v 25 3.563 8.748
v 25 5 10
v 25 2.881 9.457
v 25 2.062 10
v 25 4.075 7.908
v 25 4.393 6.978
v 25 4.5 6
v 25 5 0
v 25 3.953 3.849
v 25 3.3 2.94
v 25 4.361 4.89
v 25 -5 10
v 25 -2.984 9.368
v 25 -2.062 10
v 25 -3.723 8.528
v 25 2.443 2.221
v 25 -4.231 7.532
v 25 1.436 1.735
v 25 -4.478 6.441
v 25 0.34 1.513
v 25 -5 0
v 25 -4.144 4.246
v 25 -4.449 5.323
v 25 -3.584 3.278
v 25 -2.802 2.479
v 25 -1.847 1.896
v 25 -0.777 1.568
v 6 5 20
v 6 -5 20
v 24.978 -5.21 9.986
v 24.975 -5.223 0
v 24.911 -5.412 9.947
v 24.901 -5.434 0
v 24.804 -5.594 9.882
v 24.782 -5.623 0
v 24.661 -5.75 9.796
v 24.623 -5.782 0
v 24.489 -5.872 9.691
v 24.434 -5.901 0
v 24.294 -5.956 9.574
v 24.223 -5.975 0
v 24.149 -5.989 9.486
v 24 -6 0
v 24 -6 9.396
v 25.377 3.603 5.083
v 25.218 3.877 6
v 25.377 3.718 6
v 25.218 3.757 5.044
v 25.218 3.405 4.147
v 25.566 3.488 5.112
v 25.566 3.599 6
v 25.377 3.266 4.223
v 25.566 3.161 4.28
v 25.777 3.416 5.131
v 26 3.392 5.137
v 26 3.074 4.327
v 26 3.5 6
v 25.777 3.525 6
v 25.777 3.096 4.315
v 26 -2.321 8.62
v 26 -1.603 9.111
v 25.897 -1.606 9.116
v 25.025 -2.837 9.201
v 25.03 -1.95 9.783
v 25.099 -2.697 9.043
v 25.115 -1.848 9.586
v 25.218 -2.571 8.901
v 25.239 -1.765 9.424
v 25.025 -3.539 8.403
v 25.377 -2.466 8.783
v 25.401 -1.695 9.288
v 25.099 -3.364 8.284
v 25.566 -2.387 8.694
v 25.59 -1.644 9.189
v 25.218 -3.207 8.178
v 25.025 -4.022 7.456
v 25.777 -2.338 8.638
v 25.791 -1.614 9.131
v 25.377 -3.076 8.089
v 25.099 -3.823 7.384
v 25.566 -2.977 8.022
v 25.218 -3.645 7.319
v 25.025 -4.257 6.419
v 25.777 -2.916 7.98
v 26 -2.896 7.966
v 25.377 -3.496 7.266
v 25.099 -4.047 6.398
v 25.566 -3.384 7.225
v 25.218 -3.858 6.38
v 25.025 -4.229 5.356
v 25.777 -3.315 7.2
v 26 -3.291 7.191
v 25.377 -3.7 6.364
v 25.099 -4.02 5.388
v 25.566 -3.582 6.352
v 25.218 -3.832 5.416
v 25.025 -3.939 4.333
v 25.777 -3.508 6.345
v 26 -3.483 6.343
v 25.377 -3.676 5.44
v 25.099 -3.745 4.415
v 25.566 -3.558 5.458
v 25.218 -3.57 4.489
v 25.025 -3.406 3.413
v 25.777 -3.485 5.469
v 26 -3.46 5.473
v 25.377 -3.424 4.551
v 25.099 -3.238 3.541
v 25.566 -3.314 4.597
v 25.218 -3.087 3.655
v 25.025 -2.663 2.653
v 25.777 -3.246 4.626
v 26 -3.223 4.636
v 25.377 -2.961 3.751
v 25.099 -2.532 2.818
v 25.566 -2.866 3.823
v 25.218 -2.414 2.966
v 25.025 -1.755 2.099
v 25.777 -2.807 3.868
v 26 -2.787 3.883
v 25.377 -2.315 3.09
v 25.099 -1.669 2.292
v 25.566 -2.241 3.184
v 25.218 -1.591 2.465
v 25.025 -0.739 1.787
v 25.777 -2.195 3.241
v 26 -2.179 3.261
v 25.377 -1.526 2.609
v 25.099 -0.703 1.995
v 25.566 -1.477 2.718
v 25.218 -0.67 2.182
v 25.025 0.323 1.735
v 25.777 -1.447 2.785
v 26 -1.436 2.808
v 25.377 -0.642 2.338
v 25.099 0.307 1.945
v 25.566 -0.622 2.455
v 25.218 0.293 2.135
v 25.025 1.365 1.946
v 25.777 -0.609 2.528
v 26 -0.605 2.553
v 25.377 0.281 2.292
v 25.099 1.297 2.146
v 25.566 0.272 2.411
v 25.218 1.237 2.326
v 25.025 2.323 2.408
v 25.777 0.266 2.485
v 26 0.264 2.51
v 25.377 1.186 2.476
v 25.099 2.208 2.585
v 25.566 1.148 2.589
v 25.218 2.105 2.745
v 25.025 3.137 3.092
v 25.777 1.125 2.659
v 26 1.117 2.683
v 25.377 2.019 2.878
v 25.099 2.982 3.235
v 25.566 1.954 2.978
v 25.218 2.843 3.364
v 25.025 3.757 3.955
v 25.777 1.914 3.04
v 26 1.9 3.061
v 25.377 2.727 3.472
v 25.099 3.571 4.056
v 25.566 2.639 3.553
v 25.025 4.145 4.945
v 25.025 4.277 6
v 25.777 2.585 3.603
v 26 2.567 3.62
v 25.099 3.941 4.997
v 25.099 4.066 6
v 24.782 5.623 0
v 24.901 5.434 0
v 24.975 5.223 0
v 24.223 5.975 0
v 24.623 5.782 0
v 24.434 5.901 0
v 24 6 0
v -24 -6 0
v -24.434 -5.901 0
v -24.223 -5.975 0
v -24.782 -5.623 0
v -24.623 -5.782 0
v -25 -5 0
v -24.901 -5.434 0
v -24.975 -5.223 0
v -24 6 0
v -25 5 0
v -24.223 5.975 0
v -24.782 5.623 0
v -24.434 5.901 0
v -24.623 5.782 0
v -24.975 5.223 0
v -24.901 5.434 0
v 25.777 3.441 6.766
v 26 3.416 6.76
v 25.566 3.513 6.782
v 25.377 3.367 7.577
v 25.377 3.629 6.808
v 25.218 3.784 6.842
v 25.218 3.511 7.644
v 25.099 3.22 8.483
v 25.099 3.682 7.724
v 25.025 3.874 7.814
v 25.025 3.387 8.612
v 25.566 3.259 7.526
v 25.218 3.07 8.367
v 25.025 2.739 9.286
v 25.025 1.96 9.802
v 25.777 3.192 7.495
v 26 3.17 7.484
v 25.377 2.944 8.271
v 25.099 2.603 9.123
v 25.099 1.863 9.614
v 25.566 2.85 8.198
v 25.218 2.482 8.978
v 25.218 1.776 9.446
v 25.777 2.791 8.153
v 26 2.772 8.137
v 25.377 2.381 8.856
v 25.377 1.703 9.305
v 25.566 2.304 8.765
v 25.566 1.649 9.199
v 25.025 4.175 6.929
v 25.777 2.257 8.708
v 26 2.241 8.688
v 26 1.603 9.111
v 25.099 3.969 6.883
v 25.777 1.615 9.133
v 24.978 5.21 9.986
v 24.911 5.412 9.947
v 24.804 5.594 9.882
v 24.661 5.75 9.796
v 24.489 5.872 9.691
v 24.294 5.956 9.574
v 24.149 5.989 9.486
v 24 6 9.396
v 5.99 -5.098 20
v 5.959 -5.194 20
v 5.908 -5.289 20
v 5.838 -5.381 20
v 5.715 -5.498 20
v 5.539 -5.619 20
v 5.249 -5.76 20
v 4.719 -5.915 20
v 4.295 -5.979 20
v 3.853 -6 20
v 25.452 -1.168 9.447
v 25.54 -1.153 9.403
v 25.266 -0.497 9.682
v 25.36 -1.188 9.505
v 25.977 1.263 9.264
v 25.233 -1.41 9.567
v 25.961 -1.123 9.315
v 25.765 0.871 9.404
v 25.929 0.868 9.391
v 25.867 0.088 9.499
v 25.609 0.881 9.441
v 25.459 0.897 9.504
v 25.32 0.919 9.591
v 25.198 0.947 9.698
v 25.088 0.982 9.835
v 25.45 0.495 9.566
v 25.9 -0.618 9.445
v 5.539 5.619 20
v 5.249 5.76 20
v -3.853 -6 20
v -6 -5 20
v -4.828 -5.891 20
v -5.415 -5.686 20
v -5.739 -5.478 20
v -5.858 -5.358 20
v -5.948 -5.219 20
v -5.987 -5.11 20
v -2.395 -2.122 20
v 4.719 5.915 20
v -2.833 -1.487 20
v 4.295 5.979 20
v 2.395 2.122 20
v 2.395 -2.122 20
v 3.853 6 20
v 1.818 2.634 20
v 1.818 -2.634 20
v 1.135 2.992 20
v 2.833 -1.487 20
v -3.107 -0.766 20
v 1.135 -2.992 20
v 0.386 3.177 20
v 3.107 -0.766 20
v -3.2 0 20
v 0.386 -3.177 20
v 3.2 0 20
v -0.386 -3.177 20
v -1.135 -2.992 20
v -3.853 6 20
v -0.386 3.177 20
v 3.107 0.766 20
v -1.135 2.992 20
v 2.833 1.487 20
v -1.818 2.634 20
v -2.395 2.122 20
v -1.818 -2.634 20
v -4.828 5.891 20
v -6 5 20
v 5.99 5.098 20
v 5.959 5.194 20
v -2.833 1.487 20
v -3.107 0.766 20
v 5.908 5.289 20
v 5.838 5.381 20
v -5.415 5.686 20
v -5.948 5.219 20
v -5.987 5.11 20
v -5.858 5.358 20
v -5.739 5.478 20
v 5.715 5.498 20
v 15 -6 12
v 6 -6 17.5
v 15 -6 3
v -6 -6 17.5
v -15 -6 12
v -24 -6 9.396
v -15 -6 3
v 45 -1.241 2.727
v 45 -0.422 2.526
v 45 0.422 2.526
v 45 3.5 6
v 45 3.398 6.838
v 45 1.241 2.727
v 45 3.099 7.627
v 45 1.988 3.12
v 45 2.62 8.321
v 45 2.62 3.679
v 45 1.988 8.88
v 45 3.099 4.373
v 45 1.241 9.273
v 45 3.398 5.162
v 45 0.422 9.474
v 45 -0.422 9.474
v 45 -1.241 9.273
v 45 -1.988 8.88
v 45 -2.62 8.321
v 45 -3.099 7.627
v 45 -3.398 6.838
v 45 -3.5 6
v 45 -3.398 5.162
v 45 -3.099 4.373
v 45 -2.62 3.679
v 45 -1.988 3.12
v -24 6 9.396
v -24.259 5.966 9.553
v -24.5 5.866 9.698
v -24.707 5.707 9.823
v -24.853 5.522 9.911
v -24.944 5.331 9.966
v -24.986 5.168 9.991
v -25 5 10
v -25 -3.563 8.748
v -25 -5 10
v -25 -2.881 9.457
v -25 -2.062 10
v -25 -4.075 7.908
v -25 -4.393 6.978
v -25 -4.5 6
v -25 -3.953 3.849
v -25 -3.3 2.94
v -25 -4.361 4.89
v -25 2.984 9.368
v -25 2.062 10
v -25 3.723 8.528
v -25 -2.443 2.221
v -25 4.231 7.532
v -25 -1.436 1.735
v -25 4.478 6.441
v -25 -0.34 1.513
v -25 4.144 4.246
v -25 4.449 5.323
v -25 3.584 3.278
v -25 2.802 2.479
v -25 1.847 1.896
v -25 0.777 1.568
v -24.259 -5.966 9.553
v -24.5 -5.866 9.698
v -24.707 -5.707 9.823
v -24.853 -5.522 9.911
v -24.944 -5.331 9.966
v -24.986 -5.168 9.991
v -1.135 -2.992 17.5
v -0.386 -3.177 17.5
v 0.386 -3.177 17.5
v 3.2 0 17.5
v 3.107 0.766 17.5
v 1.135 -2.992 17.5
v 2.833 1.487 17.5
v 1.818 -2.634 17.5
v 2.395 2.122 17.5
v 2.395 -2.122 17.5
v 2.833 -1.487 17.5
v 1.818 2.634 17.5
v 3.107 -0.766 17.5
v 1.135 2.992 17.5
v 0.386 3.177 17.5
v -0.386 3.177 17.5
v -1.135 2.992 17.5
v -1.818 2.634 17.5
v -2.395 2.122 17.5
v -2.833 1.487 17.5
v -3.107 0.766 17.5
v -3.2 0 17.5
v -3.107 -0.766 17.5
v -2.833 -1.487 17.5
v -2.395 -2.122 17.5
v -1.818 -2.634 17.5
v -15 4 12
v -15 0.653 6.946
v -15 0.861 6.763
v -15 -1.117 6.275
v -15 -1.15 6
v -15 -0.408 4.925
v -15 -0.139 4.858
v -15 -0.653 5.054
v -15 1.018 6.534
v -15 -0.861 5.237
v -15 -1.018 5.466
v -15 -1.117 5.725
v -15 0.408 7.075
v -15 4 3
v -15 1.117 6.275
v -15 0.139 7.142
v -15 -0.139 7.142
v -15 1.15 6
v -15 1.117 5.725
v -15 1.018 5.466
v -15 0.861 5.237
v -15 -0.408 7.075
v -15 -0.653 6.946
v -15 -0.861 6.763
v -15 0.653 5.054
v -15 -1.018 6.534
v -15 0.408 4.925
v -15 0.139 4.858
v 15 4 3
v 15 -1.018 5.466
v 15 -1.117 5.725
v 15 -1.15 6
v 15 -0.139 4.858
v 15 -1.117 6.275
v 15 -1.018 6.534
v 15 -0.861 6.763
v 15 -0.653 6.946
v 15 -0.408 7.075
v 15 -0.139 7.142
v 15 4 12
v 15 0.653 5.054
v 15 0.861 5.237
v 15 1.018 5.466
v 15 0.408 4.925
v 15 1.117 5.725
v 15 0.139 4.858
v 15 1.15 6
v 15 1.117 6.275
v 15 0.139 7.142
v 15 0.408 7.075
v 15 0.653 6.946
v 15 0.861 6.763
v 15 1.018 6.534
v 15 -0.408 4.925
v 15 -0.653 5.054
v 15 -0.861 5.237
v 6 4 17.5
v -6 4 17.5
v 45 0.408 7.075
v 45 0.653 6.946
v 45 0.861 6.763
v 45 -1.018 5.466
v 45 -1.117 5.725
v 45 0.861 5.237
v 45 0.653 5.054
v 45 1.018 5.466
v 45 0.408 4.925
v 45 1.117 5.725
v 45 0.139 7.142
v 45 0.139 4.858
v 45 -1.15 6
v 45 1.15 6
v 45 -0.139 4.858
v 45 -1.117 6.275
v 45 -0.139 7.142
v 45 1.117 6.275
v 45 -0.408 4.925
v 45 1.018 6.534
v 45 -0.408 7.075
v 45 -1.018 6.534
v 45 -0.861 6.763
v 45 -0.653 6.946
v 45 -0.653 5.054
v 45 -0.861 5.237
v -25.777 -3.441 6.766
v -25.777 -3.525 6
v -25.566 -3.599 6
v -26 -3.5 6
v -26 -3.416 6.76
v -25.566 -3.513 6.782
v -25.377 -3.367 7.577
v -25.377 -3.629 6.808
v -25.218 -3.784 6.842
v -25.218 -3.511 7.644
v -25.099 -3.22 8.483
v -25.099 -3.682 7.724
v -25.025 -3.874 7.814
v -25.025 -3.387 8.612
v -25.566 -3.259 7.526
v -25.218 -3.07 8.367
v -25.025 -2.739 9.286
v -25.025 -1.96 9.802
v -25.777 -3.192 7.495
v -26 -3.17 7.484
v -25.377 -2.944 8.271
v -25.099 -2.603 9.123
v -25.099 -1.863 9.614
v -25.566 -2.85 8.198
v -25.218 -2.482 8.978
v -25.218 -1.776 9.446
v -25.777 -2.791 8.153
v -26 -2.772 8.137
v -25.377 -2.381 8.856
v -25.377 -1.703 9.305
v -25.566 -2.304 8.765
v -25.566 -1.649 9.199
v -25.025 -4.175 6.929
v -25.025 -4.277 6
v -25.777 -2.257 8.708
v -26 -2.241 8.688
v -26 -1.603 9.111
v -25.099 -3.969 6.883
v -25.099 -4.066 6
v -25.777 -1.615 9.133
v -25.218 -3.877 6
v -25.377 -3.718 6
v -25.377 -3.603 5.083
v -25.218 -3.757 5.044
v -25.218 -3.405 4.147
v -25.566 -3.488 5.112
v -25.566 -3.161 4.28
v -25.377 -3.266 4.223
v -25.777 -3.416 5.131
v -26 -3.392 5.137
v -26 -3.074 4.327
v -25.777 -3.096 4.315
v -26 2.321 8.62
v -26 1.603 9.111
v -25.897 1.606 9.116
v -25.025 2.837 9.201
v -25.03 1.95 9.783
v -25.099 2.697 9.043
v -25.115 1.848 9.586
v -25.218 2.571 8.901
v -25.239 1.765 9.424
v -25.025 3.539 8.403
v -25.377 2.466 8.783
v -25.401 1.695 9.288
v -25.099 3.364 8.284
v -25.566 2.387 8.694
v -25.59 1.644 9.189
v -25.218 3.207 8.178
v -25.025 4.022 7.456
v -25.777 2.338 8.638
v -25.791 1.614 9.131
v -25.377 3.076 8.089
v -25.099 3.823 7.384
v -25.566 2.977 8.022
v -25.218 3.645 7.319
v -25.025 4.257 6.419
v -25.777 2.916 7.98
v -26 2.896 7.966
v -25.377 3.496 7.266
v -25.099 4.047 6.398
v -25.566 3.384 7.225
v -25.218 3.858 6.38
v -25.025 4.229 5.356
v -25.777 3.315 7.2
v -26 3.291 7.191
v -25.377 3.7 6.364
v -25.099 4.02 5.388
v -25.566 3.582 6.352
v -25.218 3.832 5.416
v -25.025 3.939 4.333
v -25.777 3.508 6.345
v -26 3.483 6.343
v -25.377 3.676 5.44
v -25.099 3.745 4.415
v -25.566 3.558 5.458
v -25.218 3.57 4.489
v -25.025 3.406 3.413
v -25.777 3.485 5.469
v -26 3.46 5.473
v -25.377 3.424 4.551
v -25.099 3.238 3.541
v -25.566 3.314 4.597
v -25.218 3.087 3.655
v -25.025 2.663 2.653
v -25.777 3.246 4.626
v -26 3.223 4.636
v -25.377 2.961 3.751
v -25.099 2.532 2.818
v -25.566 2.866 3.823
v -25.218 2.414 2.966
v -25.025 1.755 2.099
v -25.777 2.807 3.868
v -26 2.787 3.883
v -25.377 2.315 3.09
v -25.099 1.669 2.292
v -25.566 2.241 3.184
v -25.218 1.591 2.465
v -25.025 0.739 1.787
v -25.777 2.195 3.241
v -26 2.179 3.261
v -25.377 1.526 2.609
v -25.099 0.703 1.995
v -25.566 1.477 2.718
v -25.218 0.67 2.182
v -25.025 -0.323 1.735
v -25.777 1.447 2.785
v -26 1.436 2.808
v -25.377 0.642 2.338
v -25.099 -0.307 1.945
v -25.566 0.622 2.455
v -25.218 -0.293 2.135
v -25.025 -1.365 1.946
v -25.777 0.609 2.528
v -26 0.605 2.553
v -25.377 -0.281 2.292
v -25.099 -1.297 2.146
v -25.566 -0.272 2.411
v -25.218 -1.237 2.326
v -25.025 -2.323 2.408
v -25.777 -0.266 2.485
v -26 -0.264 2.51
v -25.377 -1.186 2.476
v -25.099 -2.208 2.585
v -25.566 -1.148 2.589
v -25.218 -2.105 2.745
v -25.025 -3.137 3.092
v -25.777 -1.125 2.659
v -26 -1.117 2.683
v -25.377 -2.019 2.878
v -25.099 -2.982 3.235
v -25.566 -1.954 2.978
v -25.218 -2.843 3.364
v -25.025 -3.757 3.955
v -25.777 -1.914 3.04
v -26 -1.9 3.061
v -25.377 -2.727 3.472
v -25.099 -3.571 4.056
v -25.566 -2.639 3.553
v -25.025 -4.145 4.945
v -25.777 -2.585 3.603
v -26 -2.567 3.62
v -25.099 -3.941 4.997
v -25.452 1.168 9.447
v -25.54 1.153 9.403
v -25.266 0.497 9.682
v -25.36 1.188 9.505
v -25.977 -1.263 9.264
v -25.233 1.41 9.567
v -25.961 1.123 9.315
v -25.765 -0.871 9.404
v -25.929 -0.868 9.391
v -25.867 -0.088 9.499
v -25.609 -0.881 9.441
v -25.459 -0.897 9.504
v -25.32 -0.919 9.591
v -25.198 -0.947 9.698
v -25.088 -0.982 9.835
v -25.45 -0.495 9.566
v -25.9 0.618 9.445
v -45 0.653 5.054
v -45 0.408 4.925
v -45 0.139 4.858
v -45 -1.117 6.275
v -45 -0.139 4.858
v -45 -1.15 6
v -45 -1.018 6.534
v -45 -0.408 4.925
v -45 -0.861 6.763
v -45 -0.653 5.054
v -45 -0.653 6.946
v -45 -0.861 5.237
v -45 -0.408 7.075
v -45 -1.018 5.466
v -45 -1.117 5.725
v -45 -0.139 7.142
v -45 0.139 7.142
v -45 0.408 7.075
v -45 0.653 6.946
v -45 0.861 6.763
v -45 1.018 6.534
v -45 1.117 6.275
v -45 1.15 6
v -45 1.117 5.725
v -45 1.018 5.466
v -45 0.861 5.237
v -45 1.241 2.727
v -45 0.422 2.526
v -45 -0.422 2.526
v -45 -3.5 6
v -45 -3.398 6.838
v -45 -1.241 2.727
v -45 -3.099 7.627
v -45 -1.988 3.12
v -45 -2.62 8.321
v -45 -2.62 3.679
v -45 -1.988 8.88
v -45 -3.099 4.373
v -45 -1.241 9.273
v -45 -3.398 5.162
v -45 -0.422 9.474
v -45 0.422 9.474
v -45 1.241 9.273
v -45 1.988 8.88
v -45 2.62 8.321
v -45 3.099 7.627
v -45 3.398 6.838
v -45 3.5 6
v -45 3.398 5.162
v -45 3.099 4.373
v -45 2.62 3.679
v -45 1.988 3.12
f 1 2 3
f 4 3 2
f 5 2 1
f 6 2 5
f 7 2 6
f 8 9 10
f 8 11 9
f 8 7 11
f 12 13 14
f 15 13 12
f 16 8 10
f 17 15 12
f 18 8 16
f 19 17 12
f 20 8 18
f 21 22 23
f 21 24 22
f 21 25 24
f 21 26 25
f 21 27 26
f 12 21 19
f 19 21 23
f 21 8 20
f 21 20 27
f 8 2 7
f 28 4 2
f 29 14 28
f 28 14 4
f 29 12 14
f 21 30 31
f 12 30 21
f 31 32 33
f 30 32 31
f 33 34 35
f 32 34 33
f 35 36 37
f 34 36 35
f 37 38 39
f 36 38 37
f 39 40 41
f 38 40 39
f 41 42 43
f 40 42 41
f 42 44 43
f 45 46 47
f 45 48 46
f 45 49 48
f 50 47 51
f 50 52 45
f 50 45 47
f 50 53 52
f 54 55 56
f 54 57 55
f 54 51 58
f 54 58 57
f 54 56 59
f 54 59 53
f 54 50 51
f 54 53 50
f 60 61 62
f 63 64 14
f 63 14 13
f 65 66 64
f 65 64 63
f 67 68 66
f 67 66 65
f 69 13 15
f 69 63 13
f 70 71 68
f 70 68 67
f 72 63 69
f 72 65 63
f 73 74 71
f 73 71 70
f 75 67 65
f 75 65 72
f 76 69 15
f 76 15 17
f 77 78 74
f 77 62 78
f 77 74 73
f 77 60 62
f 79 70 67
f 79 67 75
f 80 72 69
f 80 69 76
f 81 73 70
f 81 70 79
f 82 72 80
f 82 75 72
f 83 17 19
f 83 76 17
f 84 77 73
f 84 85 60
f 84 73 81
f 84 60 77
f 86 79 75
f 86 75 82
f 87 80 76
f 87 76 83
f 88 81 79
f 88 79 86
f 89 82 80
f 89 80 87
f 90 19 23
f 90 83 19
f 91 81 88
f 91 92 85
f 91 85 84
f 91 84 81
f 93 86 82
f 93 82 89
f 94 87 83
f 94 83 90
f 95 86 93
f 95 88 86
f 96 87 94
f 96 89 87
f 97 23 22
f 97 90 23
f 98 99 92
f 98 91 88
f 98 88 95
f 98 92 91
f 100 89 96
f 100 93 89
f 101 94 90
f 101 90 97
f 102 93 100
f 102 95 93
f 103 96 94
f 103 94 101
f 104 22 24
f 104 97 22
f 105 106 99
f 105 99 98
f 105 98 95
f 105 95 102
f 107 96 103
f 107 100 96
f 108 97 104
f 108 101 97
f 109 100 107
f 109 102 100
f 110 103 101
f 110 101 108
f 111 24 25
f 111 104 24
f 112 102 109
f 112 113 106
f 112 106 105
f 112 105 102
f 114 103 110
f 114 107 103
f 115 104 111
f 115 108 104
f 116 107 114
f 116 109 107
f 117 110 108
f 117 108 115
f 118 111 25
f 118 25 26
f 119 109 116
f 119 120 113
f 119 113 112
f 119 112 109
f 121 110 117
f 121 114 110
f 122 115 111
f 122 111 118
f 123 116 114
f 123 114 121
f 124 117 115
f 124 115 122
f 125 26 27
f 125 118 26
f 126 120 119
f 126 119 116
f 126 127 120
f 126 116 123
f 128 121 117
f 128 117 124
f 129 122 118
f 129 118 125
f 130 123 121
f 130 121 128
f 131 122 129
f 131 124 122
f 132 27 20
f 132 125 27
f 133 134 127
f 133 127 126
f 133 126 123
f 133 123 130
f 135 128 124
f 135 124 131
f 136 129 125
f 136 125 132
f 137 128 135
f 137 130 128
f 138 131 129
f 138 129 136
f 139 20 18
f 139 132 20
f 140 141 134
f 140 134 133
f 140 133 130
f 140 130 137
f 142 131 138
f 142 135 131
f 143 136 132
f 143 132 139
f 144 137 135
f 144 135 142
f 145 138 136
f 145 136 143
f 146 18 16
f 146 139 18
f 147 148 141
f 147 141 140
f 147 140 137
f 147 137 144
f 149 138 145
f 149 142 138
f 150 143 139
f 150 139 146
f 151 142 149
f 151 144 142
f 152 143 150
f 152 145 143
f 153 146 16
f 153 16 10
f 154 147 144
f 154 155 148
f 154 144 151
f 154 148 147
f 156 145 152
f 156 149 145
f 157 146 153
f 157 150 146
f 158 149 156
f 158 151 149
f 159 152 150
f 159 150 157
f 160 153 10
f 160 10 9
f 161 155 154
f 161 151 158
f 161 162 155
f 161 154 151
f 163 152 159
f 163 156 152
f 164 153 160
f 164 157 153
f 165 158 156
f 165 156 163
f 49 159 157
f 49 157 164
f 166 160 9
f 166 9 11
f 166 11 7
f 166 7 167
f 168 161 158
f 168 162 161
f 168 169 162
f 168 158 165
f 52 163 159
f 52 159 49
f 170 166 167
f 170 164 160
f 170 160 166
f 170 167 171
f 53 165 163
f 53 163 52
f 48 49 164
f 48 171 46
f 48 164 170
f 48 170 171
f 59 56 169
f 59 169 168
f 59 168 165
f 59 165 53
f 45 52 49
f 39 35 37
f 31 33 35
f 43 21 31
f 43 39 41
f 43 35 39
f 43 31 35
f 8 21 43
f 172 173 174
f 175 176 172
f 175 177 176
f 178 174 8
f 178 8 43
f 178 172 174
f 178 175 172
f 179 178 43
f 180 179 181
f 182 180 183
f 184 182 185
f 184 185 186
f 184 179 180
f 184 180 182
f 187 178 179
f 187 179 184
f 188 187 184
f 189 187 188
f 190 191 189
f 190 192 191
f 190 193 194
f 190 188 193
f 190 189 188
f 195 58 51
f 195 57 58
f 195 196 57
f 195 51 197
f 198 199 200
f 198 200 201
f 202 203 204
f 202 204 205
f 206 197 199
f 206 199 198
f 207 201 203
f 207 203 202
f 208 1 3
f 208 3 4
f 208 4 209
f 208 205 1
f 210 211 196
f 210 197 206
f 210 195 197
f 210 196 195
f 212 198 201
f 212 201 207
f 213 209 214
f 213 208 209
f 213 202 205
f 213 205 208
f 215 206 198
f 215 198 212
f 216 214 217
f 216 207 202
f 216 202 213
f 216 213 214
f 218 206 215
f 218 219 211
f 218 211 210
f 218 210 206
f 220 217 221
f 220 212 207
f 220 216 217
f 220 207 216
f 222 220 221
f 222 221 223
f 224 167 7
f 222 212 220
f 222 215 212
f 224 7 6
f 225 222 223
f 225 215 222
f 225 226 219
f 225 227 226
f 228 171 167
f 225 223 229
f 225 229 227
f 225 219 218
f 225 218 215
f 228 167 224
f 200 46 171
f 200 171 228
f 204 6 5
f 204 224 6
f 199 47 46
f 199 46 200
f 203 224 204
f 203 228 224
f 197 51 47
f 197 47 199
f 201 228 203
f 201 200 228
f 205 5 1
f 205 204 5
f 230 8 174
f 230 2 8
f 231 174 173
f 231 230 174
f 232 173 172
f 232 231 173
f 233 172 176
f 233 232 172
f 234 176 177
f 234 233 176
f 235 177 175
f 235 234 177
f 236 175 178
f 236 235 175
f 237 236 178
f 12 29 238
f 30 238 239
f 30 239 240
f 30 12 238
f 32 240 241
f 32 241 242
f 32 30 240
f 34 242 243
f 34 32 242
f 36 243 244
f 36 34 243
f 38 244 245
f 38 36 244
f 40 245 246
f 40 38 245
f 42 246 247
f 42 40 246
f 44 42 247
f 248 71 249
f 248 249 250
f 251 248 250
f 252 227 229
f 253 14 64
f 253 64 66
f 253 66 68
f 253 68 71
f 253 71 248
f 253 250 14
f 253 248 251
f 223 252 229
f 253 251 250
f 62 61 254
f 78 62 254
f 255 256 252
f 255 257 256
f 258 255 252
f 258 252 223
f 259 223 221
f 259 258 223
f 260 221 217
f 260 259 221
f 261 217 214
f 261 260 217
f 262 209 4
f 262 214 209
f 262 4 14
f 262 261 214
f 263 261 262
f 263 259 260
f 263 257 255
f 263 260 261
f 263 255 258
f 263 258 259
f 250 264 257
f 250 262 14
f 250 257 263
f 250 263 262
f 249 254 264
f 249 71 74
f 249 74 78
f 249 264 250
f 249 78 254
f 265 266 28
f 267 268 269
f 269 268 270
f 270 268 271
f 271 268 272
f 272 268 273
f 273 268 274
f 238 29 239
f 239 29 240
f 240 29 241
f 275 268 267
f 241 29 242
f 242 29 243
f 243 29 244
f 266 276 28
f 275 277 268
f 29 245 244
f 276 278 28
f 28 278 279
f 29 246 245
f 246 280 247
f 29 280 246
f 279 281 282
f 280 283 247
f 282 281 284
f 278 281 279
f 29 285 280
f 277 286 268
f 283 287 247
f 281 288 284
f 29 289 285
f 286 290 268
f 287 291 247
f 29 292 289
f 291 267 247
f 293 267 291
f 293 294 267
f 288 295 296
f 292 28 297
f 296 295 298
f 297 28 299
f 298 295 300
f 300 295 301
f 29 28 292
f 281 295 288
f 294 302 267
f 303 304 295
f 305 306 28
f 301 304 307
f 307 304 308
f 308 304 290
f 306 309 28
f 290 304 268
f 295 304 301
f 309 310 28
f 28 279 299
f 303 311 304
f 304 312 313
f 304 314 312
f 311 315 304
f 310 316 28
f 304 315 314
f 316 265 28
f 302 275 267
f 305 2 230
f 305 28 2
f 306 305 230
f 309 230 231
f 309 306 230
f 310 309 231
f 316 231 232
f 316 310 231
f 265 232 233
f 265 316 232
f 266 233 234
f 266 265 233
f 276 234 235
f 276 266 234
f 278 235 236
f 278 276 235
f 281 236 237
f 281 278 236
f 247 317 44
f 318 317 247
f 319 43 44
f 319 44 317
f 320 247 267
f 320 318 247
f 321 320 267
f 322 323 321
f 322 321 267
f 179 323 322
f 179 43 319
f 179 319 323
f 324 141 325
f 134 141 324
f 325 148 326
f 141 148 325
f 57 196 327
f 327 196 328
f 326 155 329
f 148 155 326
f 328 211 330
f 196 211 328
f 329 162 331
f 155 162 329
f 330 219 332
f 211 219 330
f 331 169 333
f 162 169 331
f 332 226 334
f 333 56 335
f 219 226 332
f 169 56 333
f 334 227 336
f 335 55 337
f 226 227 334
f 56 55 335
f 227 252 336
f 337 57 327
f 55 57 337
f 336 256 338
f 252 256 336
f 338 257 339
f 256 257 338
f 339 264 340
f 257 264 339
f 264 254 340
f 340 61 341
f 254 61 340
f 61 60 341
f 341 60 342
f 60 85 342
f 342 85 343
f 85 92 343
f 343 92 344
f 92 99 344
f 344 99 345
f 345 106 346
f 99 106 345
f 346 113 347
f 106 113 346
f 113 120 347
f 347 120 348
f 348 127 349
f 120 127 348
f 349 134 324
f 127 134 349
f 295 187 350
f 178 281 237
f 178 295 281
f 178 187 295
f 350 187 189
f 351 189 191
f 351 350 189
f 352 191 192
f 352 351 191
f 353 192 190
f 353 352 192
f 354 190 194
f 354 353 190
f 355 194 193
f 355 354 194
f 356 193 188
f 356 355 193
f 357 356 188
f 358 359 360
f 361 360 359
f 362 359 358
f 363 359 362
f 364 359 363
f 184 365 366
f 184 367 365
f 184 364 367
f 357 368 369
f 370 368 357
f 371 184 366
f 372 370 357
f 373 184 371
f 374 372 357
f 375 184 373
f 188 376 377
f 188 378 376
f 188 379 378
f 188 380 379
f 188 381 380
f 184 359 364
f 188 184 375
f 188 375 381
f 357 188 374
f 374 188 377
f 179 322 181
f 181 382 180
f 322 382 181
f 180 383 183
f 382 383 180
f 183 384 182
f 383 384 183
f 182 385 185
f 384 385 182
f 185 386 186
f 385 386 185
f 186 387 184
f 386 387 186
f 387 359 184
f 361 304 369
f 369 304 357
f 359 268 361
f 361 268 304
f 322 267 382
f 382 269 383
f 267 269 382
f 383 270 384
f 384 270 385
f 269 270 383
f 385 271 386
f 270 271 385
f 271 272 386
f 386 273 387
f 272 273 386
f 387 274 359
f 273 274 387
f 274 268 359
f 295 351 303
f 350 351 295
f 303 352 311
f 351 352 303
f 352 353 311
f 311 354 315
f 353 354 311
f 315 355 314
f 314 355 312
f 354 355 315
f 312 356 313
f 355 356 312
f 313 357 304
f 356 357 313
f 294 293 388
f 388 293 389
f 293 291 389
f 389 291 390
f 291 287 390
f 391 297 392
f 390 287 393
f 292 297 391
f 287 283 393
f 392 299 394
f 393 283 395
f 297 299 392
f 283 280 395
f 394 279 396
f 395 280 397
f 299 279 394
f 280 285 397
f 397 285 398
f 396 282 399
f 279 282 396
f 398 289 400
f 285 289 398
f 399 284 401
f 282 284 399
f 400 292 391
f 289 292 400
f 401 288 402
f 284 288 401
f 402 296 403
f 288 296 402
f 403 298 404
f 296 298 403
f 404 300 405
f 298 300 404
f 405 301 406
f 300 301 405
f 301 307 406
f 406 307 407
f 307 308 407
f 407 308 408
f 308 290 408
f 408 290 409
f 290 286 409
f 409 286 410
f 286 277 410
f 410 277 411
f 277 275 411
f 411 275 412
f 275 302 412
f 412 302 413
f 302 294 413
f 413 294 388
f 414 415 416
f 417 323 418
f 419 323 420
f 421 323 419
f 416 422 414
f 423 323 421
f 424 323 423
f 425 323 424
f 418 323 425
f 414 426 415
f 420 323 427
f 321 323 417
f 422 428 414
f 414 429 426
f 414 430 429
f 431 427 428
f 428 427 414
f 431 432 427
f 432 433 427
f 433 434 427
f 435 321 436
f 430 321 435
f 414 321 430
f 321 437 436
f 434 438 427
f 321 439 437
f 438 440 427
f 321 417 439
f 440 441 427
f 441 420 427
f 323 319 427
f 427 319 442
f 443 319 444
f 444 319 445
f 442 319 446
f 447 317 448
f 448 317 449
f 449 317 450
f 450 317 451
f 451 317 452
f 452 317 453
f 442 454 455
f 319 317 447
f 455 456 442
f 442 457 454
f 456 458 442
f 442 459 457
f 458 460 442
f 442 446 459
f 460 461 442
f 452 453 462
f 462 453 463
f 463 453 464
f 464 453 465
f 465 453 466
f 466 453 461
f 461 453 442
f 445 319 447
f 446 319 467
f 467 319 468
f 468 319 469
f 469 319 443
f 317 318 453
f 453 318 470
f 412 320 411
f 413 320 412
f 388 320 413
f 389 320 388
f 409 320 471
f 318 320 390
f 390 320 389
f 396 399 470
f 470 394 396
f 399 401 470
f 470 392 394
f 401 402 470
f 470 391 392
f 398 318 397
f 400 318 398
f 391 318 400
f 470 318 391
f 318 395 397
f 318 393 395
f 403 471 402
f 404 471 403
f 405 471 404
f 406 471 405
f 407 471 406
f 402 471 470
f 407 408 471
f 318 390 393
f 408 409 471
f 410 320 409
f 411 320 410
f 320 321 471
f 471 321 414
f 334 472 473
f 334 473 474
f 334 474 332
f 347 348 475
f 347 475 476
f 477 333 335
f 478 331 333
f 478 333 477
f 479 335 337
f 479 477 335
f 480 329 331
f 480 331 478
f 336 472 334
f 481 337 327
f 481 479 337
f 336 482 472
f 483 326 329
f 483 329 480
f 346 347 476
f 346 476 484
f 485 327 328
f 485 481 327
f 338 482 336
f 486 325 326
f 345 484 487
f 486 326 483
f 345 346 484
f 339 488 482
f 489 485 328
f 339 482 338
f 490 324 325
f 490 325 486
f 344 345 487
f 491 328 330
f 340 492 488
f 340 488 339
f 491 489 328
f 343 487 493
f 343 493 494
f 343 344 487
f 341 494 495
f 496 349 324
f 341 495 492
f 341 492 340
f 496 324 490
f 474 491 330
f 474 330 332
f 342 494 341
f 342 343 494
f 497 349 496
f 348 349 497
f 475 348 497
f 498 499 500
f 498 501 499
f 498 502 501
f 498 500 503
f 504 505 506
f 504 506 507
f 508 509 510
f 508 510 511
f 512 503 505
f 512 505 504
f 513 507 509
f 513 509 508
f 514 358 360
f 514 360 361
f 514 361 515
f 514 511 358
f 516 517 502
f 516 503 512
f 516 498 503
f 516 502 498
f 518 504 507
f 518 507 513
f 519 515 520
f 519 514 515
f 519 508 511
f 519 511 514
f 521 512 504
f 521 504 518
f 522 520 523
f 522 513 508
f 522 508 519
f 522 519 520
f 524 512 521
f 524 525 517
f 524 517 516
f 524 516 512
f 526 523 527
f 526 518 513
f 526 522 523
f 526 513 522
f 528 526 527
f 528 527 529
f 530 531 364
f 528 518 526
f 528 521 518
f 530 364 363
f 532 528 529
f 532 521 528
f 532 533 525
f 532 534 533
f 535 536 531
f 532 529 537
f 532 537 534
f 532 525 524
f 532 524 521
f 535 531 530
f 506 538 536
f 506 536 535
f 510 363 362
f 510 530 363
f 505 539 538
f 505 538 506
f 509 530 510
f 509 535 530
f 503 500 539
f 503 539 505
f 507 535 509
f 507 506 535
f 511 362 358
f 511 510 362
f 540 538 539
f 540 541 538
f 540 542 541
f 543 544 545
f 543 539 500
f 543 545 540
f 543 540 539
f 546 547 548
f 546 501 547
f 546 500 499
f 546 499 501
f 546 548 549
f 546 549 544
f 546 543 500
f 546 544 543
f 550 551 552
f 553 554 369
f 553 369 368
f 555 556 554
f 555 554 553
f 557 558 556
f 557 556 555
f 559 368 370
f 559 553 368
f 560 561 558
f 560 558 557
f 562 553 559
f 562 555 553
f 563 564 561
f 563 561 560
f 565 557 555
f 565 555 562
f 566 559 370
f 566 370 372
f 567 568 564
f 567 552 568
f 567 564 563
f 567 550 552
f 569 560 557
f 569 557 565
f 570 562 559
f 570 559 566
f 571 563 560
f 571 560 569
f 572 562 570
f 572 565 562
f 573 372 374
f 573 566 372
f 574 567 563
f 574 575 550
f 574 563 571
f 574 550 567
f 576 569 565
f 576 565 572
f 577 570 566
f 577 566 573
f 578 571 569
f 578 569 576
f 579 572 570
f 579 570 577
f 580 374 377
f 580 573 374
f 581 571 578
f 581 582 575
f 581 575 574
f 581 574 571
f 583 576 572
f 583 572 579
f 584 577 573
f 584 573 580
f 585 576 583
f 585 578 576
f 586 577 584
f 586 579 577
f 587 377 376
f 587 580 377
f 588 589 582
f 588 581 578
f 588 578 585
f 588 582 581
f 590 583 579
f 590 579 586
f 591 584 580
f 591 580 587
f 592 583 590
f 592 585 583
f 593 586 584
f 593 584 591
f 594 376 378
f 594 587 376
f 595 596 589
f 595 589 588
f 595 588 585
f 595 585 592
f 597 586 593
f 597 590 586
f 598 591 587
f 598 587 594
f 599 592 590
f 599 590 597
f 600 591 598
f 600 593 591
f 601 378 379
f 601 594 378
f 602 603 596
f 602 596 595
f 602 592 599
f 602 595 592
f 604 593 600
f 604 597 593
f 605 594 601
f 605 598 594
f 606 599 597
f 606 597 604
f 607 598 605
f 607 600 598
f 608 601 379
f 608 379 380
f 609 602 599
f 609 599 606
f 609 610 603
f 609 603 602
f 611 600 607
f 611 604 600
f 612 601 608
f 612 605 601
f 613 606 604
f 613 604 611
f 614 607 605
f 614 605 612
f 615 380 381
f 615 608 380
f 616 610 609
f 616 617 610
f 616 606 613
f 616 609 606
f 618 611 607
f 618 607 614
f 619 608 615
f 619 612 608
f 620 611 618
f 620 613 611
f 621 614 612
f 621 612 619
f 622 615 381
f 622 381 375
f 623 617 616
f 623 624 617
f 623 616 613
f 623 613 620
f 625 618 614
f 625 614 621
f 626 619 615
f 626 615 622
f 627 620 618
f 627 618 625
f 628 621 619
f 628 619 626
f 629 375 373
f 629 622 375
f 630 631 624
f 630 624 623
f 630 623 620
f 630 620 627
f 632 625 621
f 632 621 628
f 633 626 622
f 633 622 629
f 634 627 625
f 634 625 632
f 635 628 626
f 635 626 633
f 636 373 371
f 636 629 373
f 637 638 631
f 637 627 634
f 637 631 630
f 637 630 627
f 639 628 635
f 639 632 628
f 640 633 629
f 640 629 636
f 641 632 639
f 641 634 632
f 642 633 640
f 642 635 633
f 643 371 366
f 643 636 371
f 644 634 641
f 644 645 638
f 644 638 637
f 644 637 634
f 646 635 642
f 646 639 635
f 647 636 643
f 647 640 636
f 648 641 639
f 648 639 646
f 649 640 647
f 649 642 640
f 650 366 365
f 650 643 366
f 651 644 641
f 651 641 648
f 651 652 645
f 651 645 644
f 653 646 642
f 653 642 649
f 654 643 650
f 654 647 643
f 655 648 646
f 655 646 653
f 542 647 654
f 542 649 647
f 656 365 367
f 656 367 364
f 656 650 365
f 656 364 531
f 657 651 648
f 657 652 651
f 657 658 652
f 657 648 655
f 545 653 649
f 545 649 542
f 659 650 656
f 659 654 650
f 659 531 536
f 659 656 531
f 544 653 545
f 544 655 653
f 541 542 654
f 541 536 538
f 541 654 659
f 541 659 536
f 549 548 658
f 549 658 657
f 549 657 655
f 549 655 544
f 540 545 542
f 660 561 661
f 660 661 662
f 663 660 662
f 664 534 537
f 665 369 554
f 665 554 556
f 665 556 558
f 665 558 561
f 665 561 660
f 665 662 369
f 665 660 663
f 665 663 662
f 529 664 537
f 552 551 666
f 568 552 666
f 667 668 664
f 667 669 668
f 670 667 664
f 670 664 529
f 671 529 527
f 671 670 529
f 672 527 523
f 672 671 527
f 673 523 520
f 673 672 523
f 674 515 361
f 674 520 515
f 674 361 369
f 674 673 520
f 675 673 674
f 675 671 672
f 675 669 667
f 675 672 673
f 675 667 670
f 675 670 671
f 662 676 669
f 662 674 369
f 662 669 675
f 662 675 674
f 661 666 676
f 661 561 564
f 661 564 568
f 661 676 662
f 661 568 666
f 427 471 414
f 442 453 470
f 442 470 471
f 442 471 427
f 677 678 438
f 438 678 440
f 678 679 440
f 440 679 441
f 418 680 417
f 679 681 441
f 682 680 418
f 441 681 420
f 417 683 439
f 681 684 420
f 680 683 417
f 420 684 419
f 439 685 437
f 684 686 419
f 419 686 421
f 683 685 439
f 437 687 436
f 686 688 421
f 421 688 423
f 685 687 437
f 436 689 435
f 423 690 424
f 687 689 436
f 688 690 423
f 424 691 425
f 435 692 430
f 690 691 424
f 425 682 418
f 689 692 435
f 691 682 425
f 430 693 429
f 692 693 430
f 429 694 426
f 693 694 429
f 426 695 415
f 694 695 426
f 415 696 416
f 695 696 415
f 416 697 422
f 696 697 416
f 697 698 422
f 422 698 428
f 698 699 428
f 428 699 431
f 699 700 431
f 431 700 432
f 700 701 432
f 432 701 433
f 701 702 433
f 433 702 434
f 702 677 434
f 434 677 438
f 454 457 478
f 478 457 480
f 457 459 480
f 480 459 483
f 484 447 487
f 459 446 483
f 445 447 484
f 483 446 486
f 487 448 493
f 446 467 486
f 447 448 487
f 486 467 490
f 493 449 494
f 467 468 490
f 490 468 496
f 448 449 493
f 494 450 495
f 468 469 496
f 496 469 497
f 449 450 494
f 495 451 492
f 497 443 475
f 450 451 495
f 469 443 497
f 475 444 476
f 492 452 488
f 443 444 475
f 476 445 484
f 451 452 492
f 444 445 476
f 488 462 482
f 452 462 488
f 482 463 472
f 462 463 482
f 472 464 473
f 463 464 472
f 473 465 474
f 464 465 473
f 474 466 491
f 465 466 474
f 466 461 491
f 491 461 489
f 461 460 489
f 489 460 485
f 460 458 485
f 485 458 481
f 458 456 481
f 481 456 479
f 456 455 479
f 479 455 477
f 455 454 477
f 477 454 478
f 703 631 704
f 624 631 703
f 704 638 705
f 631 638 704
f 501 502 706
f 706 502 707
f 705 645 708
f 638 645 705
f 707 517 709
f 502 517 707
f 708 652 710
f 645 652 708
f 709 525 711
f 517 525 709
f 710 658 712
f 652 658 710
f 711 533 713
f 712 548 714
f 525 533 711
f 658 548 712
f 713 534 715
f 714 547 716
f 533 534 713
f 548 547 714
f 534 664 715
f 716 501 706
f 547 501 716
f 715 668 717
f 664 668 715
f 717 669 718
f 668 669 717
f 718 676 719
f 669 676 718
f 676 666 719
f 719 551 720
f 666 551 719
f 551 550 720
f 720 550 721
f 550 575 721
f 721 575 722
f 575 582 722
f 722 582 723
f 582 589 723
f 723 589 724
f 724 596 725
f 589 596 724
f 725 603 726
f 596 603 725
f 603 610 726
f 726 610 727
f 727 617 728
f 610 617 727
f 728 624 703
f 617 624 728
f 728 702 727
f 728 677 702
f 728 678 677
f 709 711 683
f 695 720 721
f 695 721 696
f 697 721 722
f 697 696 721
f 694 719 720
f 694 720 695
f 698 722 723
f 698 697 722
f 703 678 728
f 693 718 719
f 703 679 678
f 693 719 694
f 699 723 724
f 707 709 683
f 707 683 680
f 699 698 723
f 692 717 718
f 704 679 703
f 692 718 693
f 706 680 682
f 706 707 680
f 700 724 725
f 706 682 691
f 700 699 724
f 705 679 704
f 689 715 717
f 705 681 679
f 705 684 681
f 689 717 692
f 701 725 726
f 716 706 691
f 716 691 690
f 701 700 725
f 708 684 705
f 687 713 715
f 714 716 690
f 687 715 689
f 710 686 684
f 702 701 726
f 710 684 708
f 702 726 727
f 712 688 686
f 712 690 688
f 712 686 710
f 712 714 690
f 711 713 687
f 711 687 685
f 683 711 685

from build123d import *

# Parameters (mm, degrees)
SKETCH_W        = 50
SKETCH_H        = 12
PAD_DEPTH       = 20
POCKET_DEPTH    = 20
POCKET001_DEPTH = 10
SKETCH003_R     = 3.2
POCKET002_DEPTH = 5
SKETCH004_R     = 3.5
PAD001_DEPTH    = 20
SKETCH005_R     = 3.5
PAD002_DEPTH    = 20
FILLET_R        = 1
SKETCH006_R     = 1.15
POCKET003_DEPTH = 200
FILLET001_R     = 1


with BuildPart() as part:
    # Sketch → Pad (new body)
    with BuildSketch(Plane.XY):
        Rectangle(SKETCH_W, SKETCH_H)
    extrude(amount=PAD_DEPTH)

    # Sketch001 (on Face3 of Pad) → Pocket (cut)
    with BuildSketch(Plane.XZ.offset(6)):
        Polygon((-25, 30), (-25, 10), (-6, 20), (6, 20), (25, 10), (25, 30), align=None)
    extrude(amount=-POCKET_DEPTH, mode=Mode.SUBTRACT)

    # Sketch002 (on Face8 of Pocket) → Pocket001 (cut)
    with BuildSketch(Plane.XZ.offset(6)):
        Polygon((-15, 12), (-15, 3), (15, 3), (15, 12), (6, 17.5), (-6, 17.5), align=None)
    extrude(amount=-POCKET001_DEPTH, mode=Mode.SUBTRACT)

    # Sketch003 (on Face5 of Pocket001) → Pocket002 (cut)
    with BuildSketch(Plane.XY.offset(20)):
        Circle(SKETCH003_R)
    extrude(amount=-POCKET002_DEPTH, mode=Mode.SUBTRACT)

    # Sketch004 (on Face7 of Pocket002) → Pad001 (join)
    with BuildSketch(Plane(origin=(-25, 0, 0), x_dir=(0, -1, 0), z_dir=(-1, 0, 0))):
        with Locations((0, 6)):
            Circle(SKETCH004_R)
    extrude(amount=PAD001_DEPTH)

    # Sketch005 (on Face3 of Pad001) → Pad002 (join)
    with BuildSketch(Plane.YZ.offset(25)):
        with Locations((0, 6)):
            Circle(SKETCH005_R)
    extrude(amount=PAD002_DEPTH)

    # Fillet
    fillet_edges = [part.edges().sort_by_distance(p)[0] for p in [
        (25, -3.5, 6),
        (-25, 3.5, 6),
    ]]
    fillet(fillet_edges, radius=FILLET_R)

    # Sketch006 (on Face26 of Fillet) → Pocket003 (cut)
    with BuildSketch(Plane(origin=(-45, 0, 0), x_dir=(0, -1, 0), z_dir=(-1, 0, 0))):
        with Locations((0, 6)):
            Circle(SKETCH006_R)
    extrude(amount=-POCKET003_DEPTH, mode=Mode.SUBTRACT)

    # Fillet001
    fillet001_edges = [part.edges().sort_by_distance(p)[0] for p in [
        (-15.5, -6, 15),
        (-25, -6, 5),
        (-25, 6, 5),
        (-15.5, 6, 15),
        (15.5, -6, 15),
        (15.5, 6, 15),
        (25, -6, 5),
        (25, 6, 5),
    ]]
    fillet(fillet001_edges, radius=FILLET001_R)


solid = part.part
